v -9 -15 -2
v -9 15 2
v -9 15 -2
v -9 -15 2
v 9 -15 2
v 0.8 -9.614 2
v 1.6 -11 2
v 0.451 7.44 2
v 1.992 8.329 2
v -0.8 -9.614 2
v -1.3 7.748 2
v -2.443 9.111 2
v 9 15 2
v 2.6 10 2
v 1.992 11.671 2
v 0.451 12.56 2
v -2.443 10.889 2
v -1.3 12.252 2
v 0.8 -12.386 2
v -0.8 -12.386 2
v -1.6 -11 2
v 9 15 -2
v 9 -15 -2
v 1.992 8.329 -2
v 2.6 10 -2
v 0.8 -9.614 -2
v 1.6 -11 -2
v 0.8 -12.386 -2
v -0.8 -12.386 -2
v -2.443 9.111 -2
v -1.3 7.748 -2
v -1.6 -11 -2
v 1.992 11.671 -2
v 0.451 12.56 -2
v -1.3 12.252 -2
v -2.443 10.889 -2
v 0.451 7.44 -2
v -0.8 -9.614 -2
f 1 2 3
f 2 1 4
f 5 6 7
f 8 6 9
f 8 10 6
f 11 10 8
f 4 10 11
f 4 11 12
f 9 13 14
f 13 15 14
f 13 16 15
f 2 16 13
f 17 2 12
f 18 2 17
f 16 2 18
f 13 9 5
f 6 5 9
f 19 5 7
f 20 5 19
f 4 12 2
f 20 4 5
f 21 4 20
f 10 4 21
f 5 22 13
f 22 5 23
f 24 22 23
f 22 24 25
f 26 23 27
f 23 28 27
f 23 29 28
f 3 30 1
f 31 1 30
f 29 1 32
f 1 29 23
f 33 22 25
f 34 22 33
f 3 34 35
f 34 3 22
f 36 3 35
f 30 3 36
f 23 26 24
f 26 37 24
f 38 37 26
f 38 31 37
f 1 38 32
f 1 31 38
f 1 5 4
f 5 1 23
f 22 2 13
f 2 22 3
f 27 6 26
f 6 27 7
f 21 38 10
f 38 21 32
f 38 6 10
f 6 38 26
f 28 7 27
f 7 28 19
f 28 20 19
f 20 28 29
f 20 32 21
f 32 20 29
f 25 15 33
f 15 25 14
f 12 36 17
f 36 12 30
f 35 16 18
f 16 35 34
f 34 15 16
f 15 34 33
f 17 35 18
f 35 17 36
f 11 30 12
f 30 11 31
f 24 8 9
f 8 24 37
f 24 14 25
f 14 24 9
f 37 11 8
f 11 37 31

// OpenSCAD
//Connector holder plate heating

difference() {
    cube([18, 30, 4], center = true);    
    translate([0, -11, -5])
        cylinder (h=10, r=1.6);
    translate([0, 10, -5])
    cylinder (h=10, r=2.6);
}
